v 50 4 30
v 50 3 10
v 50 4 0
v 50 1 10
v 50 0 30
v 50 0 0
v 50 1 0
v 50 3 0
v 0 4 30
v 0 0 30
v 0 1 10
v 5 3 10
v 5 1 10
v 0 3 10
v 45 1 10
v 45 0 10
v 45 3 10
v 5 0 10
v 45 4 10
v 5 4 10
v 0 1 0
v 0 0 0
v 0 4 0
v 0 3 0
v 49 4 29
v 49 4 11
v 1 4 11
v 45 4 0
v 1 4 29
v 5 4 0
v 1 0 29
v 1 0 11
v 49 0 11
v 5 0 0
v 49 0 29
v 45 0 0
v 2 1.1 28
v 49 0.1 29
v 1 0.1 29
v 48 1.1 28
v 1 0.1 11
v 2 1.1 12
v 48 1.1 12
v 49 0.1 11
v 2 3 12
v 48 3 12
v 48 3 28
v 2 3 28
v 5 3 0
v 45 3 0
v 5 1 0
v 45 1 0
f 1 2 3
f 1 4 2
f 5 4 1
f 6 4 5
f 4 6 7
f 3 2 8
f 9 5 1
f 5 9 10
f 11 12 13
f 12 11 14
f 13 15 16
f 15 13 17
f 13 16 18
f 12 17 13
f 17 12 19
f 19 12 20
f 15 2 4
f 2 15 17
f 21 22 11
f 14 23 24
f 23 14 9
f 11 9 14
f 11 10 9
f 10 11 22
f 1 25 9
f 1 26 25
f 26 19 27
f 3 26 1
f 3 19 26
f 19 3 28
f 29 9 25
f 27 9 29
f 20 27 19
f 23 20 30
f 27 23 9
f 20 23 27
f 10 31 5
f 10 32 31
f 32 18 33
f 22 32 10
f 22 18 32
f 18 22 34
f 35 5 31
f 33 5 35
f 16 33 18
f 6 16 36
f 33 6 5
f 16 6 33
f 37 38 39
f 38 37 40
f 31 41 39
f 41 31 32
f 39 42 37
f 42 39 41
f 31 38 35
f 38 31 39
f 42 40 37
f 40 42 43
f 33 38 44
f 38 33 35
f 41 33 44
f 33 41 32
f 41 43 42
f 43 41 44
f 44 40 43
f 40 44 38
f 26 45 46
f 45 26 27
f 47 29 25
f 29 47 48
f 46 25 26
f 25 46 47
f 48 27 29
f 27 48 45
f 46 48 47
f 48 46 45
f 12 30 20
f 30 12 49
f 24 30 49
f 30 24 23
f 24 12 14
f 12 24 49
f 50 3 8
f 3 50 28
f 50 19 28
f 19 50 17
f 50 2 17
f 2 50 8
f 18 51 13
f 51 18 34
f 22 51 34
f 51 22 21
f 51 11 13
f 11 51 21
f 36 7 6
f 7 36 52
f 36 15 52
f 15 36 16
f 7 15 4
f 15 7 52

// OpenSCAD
echo(version=version());

difference(){
    translate([0, 0, 10]) cube([50, 4, 20]);
    translate([1, 0, 11]) {
        hull(){
            cube([48, 0.1, 18]);
            translate([1, 1, 1]) cube([46, 0.1, 16]);
        }
    }
    translate([0, 3, 10]) {
        hull(){
            translate([2, 0, 2]) cube([46, 0.1, 16]);
            translate([1, 1, 1]) cube([48, 0.1, 18]);
        }
    }
}

cube([5, 1, 10]);
translate([0, 3, 0]) {
    cube([5, 1, 10]);
    translate([45, 0, 0]) cube([5, 1, 10]);
}
translate([45, 0, 0]) cube([5, 1, 10]);
